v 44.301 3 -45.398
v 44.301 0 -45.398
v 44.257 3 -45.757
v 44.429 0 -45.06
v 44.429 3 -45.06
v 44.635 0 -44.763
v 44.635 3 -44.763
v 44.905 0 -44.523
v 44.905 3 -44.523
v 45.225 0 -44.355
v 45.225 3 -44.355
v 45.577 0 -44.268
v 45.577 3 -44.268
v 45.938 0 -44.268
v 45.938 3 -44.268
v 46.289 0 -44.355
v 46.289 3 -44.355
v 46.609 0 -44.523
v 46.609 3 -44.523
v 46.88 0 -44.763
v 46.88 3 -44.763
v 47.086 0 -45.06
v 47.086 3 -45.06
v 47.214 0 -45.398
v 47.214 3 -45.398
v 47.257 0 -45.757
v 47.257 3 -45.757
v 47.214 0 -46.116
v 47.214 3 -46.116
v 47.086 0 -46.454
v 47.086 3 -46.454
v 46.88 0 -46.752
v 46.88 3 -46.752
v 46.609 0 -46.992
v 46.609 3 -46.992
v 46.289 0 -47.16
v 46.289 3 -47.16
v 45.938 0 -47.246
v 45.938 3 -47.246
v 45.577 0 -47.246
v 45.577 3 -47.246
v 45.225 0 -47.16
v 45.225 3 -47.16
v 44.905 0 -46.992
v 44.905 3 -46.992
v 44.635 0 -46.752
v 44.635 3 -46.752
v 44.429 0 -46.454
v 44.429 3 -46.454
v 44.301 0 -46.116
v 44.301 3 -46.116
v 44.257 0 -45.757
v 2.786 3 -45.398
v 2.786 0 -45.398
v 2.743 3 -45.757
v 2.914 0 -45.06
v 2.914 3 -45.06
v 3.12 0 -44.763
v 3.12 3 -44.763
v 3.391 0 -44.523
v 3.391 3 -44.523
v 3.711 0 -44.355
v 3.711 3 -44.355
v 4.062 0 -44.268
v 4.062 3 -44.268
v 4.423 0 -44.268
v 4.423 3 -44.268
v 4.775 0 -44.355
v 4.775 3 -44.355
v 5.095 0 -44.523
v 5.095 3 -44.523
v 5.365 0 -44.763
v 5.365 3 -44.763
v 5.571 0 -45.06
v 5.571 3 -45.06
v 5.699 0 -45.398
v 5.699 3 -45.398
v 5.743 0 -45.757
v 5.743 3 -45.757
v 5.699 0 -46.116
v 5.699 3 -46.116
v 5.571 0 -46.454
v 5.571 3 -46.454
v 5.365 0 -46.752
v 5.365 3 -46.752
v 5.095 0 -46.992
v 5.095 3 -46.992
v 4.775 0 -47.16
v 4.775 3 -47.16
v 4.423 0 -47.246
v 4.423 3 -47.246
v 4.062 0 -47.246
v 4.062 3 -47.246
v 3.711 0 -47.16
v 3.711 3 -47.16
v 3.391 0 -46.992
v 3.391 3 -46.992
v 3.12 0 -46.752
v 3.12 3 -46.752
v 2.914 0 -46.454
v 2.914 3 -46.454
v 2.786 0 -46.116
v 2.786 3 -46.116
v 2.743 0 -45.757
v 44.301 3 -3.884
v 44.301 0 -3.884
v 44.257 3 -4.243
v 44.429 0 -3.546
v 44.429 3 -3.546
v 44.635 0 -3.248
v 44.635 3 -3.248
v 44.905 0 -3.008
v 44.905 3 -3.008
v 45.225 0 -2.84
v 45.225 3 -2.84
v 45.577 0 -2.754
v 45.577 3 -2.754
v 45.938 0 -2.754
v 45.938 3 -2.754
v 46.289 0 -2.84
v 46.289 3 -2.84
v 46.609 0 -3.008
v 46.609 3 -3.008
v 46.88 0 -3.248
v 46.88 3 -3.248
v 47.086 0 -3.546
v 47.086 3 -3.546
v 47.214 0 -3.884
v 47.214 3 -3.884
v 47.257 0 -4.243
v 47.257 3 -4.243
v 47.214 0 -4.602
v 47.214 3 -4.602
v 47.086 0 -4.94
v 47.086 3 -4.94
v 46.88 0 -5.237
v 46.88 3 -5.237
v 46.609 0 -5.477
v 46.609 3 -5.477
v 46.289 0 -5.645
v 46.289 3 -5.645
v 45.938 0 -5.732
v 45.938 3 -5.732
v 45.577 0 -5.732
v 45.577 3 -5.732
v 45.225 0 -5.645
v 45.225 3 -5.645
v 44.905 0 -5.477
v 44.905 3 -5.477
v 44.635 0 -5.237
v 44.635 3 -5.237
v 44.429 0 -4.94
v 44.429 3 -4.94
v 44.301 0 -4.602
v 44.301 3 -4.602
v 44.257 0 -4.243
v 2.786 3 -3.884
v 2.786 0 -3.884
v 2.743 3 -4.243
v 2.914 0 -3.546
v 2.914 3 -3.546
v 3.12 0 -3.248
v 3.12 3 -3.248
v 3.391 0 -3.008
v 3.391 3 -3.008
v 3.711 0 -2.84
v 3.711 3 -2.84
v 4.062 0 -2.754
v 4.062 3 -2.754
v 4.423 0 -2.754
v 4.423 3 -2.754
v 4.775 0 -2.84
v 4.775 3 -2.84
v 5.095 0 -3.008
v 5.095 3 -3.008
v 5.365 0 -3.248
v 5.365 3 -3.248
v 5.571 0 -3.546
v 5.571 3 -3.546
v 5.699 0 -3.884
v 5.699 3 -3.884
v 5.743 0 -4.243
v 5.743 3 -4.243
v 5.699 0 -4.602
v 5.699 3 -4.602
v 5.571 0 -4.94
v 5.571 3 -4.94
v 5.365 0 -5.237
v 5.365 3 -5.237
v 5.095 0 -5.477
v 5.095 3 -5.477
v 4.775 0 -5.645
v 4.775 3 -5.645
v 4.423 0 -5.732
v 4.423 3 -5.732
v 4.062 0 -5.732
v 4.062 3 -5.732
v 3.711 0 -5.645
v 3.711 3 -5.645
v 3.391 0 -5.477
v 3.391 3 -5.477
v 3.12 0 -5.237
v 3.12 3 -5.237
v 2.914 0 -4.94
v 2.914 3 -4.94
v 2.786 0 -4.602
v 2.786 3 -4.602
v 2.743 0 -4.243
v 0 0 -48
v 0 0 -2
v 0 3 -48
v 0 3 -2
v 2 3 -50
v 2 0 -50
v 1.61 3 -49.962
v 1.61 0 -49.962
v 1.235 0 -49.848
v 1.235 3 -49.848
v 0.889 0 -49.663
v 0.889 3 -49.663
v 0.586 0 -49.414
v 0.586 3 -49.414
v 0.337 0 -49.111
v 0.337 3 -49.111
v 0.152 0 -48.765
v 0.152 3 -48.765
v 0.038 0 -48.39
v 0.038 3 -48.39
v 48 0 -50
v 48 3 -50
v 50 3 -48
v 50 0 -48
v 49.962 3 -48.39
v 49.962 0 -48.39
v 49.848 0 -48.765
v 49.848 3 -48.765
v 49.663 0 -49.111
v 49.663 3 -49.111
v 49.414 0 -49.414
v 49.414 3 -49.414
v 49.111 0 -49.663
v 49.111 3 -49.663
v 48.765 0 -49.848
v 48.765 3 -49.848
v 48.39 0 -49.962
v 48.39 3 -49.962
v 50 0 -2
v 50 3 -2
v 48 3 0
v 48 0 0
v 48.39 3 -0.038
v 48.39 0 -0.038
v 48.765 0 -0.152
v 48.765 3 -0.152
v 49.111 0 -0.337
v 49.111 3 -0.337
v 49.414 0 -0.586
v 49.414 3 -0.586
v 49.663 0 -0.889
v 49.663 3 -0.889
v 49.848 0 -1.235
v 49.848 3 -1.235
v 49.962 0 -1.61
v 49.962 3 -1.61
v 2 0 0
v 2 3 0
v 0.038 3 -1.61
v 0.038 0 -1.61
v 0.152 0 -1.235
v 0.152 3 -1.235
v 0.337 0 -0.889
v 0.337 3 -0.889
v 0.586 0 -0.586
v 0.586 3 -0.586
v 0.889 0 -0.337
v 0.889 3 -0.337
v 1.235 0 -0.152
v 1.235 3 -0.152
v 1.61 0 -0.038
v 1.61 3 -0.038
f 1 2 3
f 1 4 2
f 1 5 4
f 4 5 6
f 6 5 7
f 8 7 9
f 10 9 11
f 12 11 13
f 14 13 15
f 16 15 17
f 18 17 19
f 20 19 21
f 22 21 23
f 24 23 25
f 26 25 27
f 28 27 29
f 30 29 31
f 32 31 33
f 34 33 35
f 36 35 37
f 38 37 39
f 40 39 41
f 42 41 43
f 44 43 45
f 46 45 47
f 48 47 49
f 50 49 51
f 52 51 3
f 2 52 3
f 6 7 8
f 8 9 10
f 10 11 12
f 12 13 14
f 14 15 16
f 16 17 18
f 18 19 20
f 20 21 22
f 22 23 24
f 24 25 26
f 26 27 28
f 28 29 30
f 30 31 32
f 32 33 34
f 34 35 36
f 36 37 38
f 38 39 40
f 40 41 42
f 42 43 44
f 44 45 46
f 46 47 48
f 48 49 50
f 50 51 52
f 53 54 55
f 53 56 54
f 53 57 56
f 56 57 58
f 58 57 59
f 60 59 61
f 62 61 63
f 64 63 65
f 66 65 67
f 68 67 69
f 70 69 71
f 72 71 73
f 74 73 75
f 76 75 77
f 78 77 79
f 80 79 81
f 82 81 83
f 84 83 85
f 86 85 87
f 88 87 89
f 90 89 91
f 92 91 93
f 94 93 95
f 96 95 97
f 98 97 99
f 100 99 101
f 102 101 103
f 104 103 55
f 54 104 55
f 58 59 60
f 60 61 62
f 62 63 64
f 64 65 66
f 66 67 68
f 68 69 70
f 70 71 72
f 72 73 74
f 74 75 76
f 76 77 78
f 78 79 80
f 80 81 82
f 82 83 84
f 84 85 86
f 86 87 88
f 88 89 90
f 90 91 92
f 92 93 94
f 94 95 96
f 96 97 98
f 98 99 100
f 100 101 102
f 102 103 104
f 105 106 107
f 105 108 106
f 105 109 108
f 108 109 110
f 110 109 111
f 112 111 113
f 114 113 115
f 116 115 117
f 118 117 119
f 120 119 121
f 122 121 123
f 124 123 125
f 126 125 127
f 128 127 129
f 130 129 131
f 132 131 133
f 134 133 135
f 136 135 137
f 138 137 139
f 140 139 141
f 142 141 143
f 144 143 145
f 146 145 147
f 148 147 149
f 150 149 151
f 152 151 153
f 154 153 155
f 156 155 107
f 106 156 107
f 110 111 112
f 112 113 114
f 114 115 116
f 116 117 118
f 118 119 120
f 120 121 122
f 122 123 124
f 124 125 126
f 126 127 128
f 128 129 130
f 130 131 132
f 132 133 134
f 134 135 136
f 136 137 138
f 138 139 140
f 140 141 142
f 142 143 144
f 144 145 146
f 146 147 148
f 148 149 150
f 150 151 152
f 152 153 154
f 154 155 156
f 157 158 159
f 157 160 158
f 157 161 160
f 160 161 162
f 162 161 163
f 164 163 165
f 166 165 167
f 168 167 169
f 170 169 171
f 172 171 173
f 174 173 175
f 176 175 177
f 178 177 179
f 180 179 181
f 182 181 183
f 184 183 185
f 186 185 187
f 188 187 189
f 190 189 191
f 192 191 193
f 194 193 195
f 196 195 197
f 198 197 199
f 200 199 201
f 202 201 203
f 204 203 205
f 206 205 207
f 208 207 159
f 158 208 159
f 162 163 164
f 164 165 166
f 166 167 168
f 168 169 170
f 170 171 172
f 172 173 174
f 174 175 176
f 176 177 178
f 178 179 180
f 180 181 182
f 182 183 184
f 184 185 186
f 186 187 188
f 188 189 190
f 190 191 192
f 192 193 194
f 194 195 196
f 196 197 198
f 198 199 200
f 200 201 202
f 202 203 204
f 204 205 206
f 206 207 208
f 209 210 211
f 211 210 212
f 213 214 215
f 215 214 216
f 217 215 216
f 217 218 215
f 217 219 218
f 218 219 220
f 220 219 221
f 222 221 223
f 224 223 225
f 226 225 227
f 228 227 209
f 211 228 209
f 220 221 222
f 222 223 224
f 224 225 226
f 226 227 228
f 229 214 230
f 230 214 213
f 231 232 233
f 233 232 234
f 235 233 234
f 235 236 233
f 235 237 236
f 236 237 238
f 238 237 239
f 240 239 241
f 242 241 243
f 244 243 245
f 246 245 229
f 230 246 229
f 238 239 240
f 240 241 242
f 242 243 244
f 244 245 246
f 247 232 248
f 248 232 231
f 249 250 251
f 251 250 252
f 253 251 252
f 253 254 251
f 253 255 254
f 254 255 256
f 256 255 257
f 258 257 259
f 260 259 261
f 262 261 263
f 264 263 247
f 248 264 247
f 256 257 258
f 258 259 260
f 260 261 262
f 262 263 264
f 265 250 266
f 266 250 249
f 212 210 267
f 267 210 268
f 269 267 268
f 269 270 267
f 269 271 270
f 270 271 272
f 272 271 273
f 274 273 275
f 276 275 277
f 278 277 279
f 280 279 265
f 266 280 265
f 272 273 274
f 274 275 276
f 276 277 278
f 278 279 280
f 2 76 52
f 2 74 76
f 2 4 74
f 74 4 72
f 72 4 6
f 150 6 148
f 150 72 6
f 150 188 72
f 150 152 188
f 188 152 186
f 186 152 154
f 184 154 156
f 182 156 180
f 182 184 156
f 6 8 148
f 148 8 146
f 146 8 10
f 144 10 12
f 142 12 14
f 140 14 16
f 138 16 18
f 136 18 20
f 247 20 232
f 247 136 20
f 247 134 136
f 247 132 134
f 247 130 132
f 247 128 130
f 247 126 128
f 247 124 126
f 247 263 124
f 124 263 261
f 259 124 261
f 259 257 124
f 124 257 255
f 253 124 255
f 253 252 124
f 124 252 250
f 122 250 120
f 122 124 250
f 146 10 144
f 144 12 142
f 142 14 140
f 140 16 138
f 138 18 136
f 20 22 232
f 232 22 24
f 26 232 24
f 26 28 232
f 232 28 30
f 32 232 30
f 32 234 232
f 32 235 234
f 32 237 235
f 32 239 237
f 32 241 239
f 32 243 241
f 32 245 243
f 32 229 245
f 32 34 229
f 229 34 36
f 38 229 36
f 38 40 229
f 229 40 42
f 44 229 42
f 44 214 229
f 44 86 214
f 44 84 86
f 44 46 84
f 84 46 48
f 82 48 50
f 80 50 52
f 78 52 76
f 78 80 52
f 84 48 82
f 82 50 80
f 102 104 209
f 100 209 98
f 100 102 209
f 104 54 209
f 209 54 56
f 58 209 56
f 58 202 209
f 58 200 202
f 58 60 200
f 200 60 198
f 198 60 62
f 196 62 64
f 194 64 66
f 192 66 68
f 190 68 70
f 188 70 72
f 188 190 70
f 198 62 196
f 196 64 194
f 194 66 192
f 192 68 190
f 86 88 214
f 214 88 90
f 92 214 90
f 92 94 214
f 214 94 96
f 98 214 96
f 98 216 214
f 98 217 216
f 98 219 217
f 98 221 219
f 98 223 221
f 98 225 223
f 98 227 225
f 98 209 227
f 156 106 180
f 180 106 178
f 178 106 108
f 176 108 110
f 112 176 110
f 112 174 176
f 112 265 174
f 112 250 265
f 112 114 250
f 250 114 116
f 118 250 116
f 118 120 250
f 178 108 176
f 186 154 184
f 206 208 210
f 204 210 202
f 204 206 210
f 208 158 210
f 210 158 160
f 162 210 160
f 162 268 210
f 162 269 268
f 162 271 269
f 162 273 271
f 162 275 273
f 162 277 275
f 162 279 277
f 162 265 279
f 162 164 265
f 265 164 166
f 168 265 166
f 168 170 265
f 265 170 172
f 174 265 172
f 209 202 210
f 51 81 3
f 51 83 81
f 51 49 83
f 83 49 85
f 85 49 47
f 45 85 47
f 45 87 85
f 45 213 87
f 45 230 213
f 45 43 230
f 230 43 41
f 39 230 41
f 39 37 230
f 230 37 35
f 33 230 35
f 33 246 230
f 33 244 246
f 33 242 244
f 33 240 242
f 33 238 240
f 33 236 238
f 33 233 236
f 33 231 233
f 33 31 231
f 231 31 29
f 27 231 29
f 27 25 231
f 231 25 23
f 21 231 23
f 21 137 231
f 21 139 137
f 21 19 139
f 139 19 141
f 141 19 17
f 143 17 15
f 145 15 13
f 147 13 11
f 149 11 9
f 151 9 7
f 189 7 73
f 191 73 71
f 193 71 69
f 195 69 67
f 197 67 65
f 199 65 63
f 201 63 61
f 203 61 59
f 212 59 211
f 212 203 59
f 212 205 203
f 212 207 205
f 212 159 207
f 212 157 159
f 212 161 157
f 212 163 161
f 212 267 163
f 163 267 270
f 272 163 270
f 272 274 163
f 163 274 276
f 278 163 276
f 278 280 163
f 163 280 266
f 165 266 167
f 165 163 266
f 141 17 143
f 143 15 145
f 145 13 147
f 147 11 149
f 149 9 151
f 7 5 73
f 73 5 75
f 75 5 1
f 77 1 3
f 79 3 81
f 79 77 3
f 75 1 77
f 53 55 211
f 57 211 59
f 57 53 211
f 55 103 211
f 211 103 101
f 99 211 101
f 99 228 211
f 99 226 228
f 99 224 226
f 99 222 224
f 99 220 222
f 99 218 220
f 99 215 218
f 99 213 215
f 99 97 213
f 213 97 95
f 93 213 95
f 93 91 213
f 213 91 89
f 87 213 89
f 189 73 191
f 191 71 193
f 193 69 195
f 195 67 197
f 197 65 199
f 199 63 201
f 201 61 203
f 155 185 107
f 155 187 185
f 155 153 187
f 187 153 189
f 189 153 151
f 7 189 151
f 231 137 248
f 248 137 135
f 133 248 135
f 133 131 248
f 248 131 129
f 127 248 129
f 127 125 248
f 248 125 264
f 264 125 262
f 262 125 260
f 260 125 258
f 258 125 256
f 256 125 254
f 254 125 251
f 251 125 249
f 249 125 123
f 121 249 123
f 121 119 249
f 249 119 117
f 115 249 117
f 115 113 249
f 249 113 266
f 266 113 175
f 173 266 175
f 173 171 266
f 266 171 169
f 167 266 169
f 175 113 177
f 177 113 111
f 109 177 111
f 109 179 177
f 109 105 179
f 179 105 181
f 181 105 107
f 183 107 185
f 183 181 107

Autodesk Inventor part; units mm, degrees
ref_plane "YZ Plane" through (0, 0, 0) normal (1, 0, 0) x (0, 1, 0)
ref_plane "XZ Plane" through (0, 0, 0) normal (0, 1, 0) x (-1, 0, 0)
ref_plane "XY Plane" through (0, 0, 0) normal (0, 0, 1) x (1, 0, 0)
sketch "Sketch3" plane through (0, 0, 0) normal (0, 1, 0) x (-1, 0, 0)
  line L0 (-15, 0) -> (-2, 0)
  line L1 (0, -2) -> (0, -48)
  line L2 (-2, -50) -> (-48, -50)
  line L3 (-50, -48) -> (-50, -2)
  circle A0 centre (-4.2426, -4.2426) radius 1.5
  circle A1 centre (-4.2426, -45.7574) radius 1.5
  circle A2 centre (-45.7574, -45.7574) radius 1.5
  circle A3 centre (-45.7574, -4.2426) radius 1.5
  line L4 (-35, 0) -> (-48, 0)
  arc A4 (0, -2) -> (-2, 0) centre (-2, -2) ccw
  arc A5 (-48, 0) -> (-50, -2) centre (-48, -2) ccw
  arc A6 (-50, -48) -> (-48, -50) centre (-48, -48) ccw
  arc A7 (-2, -50) -> (0, -48) centre (-2, -48) ccw
  line L5 (-48, 0) -> (-2, 0)
  point P0 (0, 0)
  point P1 (0, 0)
  point P2 (-50, 0)
  point P3 (0, 0)
  point P4 (0, -50)
  dimension "d19" = 50
  dimension "d20" = 50
  dimension "d21" = 3
  dimension "d22" = 3
  dimension "d23" = 3
  dimension "d24" = 3
  dimension "d32" = 2
extrude "Extrusion2" add sketch "Sketch3" along normal blind 3
properties part number "Batt_Plate_FPV"
